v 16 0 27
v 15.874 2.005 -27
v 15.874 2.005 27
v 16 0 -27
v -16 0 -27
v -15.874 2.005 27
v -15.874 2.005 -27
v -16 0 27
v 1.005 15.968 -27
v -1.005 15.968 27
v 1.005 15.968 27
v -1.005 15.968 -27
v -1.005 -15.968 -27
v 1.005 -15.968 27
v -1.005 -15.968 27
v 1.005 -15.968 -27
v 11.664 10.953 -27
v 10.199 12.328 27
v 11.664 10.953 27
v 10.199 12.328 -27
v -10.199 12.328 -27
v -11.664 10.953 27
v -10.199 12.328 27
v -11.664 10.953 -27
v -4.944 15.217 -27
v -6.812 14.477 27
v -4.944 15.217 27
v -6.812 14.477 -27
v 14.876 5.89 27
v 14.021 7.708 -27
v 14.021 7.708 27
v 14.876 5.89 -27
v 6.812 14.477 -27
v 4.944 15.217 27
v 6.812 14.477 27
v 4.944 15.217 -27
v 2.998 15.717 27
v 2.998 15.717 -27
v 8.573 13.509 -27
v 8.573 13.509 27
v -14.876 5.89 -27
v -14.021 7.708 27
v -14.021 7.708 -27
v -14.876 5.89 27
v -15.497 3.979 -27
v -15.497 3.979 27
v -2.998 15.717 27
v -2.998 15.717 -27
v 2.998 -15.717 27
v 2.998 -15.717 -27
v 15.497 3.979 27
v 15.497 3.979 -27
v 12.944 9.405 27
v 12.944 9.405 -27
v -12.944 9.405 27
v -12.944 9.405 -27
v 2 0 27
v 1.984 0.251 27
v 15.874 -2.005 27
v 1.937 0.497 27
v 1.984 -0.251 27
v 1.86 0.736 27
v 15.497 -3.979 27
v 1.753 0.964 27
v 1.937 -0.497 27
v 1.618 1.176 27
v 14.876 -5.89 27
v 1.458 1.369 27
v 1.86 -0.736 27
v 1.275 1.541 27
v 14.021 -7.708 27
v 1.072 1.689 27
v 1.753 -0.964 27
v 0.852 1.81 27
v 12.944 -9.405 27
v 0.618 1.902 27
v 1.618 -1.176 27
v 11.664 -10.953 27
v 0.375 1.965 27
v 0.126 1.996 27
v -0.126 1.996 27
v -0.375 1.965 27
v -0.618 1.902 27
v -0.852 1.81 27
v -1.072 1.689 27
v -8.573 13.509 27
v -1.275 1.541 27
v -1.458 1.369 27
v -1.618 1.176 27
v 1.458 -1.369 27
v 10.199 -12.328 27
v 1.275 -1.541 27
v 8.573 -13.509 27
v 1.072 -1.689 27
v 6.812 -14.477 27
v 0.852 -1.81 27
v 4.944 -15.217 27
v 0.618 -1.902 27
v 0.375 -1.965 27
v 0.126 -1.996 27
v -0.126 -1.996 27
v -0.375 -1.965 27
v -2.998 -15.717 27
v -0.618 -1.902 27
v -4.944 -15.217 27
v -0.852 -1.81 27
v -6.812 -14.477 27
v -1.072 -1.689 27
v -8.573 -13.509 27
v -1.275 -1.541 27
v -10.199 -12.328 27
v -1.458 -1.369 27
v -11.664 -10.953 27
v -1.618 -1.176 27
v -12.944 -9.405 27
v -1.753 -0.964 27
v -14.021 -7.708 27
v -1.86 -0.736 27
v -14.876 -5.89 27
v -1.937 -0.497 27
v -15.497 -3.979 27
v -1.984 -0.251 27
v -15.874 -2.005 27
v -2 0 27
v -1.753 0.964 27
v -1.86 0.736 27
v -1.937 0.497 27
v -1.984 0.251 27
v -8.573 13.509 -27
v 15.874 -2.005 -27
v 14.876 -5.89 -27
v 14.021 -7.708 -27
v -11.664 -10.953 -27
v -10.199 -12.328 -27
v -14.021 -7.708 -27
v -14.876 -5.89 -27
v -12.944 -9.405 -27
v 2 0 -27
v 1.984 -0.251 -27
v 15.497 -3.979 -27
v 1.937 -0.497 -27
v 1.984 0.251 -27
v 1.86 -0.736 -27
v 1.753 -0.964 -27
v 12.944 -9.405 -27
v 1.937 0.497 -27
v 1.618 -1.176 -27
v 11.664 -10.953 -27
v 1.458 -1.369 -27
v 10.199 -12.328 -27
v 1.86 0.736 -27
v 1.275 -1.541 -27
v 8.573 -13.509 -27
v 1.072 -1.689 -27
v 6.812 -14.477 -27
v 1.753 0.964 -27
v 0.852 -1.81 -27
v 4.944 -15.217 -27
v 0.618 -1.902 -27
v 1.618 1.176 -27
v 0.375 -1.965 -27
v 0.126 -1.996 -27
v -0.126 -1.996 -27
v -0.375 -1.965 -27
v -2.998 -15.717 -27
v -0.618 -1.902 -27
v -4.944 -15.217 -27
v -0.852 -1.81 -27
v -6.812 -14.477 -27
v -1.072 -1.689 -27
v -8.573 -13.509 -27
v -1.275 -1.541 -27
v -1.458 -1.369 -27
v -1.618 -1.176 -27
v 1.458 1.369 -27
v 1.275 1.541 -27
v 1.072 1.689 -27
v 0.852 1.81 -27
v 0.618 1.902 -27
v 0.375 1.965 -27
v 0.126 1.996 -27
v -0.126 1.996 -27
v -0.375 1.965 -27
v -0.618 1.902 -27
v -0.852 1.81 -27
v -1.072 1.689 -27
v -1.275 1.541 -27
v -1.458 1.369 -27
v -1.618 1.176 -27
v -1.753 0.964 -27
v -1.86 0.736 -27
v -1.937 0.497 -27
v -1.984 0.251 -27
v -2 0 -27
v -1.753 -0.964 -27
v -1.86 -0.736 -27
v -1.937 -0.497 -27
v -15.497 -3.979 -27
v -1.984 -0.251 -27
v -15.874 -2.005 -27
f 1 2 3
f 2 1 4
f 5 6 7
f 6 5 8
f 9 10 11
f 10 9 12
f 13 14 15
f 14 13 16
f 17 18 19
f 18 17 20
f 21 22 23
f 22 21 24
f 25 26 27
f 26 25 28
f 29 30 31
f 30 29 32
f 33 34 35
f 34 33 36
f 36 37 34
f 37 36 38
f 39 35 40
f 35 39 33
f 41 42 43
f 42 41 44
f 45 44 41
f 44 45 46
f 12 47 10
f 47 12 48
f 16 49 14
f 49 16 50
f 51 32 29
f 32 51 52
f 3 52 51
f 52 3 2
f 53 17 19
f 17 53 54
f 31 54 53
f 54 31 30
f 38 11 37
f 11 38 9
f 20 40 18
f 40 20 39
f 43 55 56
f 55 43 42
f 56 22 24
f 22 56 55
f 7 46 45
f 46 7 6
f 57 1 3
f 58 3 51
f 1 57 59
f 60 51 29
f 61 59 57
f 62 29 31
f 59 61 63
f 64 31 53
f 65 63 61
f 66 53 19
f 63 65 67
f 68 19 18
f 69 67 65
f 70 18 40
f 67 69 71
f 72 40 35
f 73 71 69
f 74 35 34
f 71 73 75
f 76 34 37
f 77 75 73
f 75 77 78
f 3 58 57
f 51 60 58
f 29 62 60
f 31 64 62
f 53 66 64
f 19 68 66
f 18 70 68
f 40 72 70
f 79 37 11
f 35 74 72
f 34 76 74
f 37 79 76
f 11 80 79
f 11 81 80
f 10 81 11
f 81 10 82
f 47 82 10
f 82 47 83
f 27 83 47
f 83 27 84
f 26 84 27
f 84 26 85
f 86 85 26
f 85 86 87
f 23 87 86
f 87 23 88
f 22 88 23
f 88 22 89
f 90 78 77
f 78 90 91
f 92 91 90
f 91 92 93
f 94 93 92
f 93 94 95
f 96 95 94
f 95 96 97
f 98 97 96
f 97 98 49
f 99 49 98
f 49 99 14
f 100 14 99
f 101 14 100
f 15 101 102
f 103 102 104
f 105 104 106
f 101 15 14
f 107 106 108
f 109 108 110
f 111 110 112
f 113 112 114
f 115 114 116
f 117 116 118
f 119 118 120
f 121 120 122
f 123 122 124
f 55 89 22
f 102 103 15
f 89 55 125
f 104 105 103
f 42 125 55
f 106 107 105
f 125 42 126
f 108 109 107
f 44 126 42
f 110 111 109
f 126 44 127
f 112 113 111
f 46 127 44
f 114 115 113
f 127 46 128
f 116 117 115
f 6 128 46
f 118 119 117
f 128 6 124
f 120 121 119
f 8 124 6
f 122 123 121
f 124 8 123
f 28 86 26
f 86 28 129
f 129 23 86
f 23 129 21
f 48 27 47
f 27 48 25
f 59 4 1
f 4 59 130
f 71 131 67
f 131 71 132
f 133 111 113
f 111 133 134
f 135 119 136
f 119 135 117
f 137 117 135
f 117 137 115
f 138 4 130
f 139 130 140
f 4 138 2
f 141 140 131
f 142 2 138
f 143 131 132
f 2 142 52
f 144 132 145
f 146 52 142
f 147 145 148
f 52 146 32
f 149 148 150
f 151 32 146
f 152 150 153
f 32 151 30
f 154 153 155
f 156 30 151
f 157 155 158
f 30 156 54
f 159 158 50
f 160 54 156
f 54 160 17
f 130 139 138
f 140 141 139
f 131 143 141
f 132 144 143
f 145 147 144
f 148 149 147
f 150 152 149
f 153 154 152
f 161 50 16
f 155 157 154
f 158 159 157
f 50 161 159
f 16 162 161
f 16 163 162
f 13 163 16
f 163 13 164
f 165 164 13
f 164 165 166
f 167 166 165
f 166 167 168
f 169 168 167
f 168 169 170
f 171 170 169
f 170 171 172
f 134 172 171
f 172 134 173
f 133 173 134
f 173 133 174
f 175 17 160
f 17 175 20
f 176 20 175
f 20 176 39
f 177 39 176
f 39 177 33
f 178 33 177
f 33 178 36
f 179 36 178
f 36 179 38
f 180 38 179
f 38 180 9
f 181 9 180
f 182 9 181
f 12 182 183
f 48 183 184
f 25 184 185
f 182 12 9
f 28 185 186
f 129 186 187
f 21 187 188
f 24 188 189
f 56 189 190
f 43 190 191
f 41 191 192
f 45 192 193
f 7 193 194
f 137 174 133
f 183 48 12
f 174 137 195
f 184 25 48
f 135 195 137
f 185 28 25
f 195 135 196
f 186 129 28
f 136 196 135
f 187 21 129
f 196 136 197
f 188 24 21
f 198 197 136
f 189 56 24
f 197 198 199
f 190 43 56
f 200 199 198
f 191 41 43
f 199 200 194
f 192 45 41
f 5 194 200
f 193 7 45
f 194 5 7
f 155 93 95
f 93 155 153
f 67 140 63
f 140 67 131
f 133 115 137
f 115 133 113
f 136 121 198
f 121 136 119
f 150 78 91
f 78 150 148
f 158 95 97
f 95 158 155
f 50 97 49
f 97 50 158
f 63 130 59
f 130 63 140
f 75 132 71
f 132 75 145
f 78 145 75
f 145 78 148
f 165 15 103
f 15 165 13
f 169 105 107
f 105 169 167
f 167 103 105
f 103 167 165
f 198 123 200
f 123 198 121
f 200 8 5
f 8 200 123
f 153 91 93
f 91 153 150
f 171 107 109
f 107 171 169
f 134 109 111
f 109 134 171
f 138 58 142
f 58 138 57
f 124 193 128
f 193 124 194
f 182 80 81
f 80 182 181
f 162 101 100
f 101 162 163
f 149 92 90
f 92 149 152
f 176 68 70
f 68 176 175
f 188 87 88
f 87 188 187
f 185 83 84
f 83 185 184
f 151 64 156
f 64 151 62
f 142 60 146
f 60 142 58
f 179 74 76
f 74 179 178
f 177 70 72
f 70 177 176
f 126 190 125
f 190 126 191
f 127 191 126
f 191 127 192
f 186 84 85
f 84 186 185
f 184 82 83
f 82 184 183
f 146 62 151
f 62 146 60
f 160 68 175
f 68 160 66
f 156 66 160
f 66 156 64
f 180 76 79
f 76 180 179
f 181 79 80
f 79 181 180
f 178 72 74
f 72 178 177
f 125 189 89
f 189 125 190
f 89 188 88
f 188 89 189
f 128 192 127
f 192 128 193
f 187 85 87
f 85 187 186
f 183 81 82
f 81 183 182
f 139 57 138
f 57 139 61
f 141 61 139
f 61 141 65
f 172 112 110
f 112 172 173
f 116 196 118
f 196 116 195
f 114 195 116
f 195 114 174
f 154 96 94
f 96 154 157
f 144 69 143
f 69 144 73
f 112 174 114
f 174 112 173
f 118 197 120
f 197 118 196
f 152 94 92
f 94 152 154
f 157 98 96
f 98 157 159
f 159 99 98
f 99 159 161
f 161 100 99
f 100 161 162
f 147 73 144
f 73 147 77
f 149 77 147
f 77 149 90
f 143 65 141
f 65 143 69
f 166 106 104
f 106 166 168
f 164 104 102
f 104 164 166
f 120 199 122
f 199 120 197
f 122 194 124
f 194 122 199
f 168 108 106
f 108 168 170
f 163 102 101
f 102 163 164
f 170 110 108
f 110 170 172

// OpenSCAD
$fn = 50;


difference() {
	union() {
		translate(v = [0, 0, -27.0000000000]) {
			cylinder(h = 54, r = 16.0000000000);
		}
	}
	union() {
		translate(v = [0, 0, -100.0000000000]) {
			cylinder(h = 200, r = 2);
		}
	}
}
